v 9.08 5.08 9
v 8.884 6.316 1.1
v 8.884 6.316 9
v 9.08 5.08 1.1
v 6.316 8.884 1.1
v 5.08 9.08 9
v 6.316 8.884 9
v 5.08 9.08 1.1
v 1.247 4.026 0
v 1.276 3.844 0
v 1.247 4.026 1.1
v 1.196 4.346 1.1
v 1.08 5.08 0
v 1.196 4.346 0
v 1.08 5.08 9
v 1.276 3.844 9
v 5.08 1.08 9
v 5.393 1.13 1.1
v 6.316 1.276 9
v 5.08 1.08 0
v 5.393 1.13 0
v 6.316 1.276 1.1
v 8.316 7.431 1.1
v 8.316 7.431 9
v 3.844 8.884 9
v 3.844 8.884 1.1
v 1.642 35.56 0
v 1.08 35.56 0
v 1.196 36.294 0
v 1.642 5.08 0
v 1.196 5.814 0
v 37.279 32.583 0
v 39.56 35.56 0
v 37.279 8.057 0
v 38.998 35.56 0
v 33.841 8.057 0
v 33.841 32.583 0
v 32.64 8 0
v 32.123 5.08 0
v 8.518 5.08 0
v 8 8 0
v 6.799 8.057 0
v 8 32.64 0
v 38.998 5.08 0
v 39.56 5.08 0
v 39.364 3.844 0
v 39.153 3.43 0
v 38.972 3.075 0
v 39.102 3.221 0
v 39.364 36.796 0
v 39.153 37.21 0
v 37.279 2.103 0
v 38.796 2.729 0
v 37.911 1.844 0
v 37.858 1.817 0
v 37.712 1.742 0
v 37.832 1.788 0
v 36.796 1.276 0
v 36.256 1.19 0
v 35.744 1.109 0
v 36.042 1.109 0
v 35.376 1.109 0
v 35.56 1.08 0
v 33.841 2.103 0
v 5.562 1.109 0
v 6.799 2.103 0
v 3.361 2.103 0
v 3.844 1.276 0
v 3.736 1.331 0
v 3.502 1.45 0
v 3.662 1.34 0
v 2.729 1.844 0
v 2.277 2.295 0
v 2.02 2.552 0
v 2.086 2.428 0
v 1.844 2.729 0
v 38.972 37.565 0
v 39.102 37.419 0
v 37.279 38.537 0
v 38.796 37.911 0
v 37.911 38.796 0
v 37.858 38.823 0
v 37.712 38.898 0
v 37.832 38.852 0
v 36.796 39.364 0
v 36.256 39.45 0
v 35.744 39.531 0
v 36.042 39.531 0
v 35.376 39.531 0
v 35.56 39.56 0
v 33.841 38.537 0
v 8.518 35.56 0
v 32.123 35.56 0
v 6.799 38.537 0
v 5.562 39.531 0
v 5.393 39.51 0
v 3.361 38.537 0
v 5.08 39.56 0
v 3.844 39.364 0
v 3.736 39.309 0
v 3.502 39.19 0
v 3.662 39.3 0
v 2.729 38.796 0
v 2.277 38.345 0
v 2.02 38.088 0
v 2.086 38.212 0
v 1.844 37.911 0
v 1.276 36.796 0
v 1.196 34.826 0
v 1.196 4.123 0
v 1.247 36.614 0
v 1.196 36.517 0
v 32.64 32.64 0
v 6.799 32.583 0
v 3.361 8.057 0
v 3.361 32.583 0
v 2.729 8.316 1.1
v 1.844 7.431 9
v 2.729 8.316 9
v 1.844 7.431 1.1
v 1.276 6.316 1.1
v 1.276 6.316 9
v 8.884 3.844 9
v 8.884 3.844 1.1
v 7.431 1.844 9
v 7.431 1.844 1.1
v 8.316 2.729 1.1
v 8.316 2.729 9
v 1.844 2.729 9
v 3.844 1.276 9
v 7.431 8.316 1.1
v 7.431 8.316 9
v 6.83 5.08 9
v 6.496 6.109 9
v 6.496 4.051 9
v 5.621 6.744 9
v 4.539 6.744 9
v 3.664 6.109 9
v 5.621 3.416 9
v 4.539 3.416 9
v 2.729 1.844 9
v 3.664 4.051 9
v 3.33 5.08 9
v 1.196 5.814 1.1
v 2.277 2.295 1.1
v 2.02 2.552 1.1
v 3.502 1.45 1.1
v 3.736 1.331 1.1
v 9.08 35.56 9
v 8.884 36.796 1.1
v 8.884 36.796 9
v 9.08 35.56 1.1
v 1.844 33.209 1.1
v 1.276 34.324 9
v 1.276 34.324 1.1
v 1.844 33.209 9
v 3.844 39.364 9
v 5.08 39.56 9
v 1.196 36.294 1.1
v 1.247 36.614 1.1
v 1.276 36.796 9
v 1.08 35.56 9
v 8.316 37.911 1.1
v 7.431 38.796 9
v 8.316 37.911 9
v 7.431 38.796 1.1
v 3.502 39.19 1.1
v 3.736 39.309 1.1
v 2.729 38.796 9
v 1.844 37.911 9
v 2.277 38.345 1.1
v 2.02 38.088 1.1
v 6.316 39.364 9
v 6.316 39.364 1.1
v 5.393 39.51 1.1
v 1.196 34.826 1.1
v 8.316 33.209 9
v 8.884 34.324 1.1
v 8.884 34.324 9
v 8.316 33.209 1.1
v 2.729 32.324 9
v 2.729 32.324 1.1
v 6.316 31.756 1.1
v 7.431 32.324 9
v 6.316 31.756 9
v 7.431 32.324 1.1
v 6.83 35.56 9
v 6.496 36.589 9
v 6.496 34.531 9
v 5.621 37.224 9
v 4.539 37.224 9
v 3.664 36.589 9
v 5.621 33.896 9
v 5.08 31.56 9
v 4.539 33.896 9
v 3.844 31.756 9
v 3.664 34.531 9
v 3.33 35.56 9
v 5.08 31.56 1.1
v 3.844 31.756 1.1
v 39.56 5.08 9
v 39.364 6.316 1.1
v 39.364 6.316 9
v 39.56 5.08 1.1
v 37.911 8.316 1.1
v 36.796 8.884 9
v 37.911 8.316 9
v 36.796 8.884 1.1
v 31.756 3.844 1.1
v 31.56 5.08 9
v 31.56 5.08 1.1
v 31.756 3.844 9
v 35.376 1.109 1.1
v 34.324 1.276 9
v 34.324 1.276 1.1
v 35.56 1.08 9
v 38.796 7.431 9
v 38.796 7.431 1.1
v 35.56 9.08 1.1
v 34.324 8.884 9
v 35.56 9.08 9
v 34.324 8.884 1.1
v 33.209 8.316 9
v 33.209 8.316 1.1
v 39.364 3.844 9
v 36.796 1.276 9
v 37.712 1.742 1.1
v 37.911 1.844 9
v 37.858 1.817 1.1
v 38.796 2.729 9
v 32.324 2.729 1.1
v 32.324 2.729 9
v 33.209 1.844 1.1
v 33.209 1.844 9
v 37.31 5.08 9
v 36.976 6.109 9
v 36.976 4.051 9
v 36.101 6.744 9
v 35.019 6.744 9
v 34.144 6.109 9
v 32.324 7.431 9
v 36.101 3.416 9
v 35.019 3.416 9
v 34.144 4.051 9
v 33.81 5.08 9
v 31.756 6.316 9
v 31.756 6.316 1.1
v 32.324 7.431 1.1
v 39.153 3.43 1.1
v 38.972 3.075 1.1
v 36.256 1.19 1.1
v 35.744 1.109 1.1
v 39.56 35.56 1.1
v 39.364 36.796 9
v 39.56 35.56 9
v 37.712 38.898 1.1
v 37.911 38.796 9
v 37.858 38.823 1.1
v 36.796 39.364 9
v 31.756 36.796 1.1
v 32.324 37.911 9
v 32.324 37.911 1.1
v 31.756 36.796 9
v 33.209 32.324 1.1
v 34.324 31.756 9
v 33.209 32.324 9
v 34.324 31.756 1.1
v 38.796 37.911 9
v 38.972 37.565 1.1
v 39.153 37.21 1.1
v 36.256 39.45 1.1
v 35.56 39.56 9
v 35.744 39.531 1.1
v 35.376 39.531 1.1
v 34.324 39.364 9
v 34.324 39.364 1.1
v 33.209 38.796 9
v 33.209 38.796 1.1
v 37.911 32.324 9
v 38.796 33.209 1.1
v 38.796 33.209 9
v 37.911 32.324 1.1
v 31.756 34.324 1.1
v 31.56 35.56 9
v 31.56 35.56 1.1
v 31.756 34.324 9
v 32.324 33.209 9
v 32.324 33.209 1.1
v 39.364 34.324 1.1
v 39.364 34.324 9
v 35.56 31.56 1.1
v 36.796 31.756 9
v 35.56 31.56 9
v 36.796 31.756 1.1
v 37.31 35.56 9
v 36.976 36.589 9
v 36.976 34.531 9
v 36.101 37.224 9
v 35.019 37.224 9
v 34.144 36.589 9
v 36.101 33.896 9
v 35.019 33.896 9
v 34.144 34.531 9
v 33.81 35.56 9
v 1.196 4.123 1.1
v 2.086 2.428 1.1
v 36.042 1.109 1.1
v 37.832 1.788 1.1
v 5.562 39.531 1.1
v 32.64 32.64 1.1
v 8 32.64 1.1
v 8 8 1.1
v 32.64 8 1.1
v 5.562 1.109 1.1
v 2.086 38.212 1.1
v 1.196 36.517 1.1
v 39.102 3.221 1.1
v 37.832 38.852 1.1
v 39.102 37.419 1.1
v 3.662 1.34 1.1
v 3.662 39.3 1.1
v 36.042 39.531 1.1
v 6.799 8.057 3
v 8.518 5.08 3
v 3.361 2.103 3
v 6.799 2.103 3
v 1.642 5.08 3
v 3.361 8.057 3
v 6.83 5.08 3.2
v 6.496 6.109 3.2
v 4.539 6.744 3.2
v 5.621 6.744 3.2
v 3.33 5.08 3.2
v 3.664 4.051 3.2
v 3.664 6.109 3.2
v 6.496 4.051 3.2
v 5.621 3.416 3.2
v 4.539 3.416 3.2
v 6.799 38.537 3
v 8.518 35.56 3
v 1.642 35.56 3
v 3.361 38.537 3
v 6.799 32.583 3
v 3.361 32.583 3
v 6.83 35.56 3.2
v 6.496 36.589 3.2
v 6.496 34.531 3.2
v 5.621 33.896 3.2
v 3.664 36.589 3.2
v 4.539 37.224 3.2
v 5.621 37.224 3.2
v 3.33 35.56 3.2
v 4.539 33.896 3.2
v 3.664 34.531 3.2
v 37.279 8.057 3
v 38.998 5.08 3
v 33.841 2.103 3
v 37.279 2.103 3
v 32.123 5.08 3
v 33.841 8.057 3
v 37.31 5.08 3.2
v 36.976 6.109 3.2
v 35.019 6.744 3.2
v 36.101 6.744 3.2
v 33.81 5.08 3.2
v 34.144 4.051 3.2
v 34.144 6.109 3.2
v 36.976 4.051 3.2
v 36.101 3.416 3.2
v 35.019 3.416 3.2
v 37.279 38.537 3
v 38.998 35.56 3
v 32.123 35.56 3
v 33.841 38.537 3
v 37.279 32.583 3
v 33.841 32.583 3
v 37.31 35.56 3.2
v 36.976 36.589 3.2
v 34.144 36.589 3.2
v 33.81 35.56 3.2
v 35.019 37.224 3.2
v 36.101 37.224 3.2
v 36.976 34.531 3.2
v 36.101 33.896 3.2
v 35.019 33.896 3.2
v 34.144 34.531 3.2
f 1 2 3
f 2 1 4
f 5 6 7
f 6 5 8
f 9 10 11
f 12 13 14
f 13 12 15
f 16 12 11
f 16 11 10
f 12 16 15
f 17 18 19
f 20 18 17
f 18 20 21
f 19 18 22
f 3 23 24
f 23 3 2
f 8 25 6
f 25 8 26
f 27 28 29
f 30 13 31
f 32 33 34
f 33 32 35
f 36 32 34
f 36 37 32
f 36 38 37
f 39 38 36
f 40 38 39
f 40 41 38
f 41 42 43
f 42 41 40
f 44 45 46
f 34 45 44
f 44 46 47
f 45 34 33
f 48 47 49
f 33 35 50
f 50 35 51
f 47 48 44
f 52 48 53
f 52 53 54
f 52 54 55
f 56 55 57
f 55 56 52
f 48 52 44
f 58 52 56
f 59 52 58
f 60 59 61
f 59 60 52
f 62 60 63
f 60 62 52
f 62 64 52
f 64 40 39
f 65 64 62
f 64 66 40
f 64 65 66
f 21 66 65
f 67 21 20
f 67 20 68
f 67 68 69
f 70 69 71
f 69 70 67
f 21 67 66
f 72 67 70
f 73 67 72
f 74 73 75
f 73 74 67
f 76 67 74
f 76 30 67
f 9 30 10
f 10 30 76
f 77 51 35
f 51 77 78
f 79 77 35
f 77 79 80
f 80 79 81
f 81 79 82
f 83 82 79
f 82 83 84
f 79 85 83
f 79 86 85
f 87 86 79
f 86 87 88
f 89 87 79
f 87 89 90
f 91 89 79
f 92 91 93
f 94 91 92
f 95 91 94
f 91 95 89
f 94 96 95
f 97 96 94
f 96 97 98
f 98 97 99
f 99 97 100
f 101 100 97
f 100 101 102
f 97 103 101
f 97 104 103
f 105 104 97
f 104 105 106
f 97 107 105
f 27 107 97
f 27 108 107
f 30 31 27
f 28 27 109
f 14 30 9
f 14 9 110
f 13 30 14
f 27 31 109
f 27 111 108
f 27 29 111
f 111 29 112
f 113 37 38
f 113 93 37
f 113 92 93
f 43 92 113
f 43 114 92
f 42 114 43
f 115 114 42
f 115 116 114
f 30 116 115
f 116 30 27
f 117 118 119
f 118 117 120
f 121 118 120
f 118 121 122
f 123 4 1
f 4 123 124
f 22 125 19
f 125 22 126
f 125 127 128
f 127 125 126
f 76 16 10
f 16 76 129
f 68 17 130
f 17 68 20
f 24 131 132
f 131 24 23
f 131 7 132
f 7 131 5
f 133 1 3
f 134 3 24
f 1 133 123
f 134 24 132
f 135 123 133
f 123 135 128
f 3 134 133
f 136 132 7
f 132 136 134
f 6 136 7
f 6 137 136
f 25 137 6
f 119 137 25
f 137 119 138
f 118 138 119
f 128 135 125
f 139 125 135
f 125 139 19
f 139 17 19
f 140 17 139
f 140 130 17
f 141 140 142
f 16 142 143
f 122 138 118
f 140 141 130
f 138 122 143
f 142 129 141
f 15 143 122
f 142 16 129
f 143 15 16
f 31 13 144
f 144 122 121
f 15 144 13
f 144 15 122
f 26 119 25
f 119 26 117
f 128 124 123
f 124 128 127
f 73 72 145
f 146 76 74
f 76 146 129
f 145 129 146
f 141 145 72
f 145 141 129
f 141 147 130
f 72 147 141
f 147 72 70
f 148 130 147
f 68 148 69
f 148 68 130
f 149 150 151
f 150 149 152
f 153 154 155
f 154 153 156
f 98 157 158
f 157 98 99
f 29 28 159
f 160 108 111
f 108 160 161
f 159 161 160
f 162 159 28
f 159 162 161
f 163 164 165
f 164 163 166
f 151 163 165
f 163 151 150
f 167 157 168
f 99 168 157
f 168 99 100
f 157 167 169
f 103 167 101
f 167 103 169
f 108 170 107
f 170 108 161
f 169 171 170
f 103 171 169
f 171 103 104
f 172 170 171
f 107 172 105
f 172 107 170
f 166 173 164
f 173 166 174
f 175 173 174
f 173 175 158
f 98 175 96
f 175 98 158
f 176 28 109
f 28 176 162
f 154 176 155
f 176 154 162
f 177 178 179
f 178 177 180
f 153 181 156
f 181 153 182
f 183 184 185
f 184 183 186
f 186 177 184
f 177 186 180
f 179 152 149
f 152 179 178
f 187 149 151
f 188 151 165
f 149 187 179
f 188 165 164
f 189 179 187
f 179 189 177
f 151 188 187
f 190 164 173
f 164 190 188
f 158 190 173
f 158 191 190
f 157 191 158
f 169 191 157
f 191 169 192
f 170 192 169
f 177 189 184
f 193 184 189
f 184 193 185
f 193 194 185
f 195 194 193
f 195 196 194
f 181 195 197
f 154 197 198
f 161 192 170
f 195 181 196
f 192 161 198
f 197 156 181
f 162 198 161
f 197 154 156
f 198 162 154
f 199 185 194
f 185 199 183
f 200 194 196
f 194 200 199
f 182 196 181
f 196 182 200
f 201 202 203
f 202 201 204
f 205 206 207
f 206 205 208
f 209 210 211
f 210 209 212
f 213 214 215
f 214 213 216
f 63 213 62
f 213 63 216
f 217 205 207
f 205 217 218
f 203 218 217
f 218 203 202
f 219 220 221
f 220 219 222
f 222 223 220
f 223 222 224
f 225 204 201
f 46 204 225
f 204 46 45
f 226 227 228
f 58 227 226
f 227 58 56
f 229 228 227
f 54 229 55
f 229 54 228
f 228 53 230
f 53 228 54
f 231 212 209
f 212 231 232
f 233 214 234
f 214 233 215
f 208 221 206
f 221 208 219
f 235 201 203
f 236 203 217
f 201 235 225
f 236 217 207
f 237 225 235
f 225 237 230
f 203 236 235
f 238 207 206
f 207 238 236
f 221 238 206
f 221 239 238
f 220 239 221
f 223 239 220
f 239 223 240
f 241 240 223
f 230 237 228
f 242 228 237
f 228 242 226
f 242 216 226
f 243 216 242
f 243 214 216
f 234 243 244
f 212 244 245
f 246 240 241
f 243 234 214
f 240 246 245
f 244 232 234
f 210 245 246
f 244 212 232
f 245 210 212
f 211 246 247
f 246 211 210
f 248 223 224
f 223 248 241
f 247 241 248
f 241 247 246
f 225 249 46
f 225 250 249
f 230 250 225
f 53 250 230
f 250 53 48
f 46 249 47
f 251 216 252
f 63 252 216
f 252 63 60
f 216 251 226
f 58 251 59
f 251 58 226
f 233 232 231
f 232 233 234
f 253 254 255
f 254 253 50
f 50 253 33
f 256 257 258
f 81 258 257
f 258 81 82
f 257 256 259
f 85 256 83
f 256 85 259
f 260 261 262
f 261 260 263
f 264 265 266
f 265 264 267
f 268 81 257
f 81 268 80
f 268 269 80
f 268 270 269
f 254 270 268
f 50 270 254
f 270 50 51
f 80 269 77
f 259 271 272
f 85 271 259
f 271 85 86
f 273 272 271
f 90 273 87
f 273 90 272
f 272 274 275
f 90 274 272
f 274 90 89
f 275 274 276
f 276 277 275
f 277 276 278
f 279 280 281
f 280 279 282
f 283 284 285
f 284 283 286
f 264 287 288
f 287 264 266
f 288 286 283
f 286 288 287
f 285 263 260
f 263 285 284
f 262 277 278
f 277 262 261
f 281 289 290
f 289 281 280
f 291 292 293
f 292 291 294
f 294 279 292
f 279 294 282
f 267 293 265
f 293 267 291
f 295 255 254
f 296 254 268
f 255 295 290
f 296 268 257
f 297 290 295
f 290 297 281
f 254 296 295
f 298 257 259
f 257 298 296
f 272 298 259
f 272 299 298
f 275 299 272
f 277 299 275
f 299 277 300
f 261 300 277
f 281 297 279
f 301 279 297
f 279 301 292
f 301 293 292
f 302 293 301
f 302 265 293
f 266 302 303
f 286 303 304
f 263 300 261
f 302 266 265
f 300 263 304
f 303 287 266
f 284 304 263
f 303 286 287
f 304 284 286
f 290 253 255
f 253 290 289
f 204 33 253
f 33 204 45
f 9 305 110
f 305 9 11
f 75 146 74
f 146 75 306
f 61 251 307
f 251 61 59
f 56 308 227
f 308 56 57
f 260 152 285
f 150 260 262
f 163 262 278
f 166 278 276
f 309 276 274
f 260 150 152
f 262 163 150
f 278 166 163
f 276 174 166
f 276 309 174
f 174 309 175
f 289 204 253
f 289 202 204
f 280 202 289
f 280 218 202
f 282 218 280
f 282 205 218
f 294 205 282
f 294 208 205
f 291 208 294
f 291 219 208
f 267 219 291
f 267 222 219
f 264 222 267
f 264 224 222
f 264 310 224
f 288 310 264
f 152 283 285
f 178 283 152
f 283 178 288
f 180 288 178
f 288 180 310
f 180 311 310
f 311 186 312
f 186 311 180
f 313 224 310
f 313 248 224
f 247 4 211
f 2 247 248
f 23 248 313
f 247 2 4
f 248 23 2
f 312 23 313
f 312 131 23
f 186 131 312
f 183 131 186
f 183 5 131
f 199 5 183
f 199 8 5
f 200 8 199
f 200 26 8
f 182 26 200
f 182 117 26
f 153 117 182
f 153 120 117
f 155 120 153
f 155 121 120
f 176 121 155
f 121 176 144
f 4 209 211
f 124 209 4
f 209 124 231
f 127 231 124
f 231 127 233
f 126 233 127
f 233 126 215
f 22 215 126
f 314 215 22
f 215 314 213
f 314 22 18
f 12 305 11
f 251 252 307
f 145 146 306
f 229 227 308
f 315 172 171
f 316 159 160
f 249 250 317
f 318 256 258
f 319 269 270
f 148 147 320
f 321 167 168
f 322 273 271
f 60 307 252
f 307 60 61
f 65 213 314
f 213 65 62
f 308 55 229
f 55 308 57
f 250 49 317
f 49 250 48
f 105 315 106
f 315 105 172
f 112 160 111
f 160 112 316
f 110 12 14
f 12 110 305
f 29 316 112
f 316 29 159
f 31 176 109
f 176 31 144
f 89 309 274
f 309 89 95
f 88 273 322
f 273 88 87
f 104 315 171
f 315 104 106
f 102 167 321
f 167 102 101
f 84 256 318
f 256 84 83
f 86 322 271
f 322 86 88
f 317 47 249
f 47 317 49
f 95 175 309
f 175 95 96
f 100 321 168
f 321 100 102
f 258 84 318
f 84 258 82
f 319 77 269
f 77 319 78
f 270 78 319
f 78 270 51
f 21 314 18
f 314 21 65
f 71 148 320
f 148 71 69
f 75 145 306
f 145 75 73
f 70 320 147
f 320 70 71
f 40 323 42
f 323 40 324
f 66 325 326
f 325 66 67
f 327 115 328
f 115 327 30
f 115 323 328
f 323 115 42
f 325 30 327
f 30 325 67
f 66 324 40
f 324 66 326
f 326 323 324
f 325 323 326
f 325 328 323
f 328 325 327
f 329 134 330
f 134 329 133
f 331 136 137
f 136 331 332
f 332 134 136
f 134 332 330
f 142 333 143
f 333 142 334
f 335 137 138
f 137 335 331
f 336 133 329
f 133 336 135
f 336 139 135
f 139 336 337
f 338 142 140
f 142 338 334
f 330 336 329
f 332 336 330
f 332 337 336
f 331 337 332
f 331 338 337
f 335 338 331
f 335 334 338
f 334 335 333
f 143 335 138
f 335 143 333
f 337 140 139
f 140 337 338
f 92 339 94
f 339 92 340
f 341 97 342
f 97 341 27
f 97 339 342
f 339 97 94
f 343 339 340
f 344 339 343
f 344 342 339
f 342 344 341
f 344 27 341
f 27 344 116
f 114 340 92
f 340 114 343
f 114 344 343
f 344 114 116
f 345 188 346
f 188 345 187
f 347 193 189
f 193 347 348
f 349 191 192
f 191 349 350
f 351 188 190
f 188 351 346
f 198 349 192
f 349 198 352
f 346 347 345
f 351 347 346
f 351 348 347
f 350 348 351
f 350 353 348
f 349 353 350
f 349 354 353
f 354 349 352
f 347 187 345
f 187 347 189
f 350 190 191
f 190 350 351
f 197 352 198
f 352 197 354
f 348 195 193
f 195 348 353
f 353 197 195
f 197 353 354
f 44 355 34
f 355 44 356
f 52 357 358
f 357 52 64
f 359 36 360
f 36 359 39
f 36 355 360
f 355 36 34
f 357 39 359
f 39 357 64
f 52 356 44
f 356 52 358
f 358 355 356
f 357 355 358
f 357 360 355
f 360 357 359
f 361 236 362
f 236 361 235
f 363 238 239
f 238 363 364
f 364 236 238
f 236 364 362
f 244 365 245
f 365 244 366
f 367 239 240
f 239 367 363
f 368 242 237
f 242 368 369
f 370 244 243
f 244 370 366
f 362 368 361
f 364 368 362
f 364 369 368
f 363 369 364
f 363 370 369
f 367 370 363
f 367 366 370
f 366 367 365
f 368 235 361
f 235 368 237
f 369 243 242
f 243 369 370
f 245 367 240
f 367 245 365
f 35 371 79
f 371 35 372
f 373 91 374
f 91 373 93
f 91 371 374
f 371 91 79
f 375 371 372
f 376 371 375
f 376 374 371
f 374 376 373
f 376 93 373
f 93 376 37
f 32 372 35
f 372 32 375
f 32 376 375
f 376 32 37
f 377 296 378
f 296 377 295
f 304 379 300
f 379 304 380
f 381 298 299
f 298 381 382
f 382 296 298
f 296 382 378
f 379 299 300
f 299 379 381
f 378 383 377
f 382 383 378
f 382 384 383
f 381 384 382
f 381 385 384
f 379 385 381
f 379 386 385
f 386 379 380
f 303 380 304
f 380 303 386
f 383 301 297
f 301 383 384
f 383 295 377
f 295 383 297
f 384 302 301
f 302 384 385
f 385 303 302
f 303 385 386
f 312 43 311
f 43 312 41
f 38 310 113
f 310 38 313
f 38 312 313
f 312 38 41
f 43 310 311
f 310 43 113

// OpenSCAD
x_holes = 4;
y_holes = 4;
MLAB_grid = 10.16;
pile_radius = 4;
pedestal_height = 9;   // designed for use the MLAB standard 20mm screws.
x_size = x_holes * MLAB_grid ;
y_size = y_holes * MLAB_grid ;
mount_hole = 3.5;
//nut_size = 6.8;  //size suitable for PLA material
nut_size = 6.7;  //size suitable for ABS material
clear = 0.175;


thickness = 1;

MLAB_grid_xoffset = MLAB_grid/2;
MLAB_grid_yoffset = MLAB_grid/2;

grid_list = [for (j = [MLAB_grid_xoffset : MLAB_grid: x_size], i = [MLAB_grid_yoffset :MLAB_grid: y_size]) 
if ((j>(x_size-10) && i>(y_size-10)) || (j<10 && i<10) || (j<10 && i>(y_size-10)) || (j>(x_size-10) && i<10) ) [j, i] ];


difference () {
    union () {
        for (j = grid_list) {
            translate (concat(j, [0]))
            cylinder (h = pedestal_height, r= pile_radius, $fn=20);
        }

            translate ([MLAB_grid_xoffset , MLAB_grid_yoffset , 0])
                minkowski() {
                cube([x_size - 2*(MLAB_grid/2 - pile_radius) - 2*pile_radius, y_size - 2*(MLAB_grid/2 - pile_radius) - 2*pile_radius, thickness]);          // base plastics brick
                cylinder(r=pile_radius,h=0.1);
            }
    }
    
    translate ([2*pile_radius, 2*pile_radius, 0]) // central hole in module support
        cube([x_size-4*pile_radius, y_size-4*pile_radius, 2*thickness]);          

    // MLAB grid holes
    for (j = grid_list) {
            translate (concat(j, [0]))
            cylinder (h = 3, r= (nut_size+clear)/2, $fn=6);
            translate (concat(j, [3.2]))  // one solid layer for slicer (the holes will be pierced on demand )
            cylinder (h = pedestal_height, r= mount_hole/2, $fn=10);
        }    
}
